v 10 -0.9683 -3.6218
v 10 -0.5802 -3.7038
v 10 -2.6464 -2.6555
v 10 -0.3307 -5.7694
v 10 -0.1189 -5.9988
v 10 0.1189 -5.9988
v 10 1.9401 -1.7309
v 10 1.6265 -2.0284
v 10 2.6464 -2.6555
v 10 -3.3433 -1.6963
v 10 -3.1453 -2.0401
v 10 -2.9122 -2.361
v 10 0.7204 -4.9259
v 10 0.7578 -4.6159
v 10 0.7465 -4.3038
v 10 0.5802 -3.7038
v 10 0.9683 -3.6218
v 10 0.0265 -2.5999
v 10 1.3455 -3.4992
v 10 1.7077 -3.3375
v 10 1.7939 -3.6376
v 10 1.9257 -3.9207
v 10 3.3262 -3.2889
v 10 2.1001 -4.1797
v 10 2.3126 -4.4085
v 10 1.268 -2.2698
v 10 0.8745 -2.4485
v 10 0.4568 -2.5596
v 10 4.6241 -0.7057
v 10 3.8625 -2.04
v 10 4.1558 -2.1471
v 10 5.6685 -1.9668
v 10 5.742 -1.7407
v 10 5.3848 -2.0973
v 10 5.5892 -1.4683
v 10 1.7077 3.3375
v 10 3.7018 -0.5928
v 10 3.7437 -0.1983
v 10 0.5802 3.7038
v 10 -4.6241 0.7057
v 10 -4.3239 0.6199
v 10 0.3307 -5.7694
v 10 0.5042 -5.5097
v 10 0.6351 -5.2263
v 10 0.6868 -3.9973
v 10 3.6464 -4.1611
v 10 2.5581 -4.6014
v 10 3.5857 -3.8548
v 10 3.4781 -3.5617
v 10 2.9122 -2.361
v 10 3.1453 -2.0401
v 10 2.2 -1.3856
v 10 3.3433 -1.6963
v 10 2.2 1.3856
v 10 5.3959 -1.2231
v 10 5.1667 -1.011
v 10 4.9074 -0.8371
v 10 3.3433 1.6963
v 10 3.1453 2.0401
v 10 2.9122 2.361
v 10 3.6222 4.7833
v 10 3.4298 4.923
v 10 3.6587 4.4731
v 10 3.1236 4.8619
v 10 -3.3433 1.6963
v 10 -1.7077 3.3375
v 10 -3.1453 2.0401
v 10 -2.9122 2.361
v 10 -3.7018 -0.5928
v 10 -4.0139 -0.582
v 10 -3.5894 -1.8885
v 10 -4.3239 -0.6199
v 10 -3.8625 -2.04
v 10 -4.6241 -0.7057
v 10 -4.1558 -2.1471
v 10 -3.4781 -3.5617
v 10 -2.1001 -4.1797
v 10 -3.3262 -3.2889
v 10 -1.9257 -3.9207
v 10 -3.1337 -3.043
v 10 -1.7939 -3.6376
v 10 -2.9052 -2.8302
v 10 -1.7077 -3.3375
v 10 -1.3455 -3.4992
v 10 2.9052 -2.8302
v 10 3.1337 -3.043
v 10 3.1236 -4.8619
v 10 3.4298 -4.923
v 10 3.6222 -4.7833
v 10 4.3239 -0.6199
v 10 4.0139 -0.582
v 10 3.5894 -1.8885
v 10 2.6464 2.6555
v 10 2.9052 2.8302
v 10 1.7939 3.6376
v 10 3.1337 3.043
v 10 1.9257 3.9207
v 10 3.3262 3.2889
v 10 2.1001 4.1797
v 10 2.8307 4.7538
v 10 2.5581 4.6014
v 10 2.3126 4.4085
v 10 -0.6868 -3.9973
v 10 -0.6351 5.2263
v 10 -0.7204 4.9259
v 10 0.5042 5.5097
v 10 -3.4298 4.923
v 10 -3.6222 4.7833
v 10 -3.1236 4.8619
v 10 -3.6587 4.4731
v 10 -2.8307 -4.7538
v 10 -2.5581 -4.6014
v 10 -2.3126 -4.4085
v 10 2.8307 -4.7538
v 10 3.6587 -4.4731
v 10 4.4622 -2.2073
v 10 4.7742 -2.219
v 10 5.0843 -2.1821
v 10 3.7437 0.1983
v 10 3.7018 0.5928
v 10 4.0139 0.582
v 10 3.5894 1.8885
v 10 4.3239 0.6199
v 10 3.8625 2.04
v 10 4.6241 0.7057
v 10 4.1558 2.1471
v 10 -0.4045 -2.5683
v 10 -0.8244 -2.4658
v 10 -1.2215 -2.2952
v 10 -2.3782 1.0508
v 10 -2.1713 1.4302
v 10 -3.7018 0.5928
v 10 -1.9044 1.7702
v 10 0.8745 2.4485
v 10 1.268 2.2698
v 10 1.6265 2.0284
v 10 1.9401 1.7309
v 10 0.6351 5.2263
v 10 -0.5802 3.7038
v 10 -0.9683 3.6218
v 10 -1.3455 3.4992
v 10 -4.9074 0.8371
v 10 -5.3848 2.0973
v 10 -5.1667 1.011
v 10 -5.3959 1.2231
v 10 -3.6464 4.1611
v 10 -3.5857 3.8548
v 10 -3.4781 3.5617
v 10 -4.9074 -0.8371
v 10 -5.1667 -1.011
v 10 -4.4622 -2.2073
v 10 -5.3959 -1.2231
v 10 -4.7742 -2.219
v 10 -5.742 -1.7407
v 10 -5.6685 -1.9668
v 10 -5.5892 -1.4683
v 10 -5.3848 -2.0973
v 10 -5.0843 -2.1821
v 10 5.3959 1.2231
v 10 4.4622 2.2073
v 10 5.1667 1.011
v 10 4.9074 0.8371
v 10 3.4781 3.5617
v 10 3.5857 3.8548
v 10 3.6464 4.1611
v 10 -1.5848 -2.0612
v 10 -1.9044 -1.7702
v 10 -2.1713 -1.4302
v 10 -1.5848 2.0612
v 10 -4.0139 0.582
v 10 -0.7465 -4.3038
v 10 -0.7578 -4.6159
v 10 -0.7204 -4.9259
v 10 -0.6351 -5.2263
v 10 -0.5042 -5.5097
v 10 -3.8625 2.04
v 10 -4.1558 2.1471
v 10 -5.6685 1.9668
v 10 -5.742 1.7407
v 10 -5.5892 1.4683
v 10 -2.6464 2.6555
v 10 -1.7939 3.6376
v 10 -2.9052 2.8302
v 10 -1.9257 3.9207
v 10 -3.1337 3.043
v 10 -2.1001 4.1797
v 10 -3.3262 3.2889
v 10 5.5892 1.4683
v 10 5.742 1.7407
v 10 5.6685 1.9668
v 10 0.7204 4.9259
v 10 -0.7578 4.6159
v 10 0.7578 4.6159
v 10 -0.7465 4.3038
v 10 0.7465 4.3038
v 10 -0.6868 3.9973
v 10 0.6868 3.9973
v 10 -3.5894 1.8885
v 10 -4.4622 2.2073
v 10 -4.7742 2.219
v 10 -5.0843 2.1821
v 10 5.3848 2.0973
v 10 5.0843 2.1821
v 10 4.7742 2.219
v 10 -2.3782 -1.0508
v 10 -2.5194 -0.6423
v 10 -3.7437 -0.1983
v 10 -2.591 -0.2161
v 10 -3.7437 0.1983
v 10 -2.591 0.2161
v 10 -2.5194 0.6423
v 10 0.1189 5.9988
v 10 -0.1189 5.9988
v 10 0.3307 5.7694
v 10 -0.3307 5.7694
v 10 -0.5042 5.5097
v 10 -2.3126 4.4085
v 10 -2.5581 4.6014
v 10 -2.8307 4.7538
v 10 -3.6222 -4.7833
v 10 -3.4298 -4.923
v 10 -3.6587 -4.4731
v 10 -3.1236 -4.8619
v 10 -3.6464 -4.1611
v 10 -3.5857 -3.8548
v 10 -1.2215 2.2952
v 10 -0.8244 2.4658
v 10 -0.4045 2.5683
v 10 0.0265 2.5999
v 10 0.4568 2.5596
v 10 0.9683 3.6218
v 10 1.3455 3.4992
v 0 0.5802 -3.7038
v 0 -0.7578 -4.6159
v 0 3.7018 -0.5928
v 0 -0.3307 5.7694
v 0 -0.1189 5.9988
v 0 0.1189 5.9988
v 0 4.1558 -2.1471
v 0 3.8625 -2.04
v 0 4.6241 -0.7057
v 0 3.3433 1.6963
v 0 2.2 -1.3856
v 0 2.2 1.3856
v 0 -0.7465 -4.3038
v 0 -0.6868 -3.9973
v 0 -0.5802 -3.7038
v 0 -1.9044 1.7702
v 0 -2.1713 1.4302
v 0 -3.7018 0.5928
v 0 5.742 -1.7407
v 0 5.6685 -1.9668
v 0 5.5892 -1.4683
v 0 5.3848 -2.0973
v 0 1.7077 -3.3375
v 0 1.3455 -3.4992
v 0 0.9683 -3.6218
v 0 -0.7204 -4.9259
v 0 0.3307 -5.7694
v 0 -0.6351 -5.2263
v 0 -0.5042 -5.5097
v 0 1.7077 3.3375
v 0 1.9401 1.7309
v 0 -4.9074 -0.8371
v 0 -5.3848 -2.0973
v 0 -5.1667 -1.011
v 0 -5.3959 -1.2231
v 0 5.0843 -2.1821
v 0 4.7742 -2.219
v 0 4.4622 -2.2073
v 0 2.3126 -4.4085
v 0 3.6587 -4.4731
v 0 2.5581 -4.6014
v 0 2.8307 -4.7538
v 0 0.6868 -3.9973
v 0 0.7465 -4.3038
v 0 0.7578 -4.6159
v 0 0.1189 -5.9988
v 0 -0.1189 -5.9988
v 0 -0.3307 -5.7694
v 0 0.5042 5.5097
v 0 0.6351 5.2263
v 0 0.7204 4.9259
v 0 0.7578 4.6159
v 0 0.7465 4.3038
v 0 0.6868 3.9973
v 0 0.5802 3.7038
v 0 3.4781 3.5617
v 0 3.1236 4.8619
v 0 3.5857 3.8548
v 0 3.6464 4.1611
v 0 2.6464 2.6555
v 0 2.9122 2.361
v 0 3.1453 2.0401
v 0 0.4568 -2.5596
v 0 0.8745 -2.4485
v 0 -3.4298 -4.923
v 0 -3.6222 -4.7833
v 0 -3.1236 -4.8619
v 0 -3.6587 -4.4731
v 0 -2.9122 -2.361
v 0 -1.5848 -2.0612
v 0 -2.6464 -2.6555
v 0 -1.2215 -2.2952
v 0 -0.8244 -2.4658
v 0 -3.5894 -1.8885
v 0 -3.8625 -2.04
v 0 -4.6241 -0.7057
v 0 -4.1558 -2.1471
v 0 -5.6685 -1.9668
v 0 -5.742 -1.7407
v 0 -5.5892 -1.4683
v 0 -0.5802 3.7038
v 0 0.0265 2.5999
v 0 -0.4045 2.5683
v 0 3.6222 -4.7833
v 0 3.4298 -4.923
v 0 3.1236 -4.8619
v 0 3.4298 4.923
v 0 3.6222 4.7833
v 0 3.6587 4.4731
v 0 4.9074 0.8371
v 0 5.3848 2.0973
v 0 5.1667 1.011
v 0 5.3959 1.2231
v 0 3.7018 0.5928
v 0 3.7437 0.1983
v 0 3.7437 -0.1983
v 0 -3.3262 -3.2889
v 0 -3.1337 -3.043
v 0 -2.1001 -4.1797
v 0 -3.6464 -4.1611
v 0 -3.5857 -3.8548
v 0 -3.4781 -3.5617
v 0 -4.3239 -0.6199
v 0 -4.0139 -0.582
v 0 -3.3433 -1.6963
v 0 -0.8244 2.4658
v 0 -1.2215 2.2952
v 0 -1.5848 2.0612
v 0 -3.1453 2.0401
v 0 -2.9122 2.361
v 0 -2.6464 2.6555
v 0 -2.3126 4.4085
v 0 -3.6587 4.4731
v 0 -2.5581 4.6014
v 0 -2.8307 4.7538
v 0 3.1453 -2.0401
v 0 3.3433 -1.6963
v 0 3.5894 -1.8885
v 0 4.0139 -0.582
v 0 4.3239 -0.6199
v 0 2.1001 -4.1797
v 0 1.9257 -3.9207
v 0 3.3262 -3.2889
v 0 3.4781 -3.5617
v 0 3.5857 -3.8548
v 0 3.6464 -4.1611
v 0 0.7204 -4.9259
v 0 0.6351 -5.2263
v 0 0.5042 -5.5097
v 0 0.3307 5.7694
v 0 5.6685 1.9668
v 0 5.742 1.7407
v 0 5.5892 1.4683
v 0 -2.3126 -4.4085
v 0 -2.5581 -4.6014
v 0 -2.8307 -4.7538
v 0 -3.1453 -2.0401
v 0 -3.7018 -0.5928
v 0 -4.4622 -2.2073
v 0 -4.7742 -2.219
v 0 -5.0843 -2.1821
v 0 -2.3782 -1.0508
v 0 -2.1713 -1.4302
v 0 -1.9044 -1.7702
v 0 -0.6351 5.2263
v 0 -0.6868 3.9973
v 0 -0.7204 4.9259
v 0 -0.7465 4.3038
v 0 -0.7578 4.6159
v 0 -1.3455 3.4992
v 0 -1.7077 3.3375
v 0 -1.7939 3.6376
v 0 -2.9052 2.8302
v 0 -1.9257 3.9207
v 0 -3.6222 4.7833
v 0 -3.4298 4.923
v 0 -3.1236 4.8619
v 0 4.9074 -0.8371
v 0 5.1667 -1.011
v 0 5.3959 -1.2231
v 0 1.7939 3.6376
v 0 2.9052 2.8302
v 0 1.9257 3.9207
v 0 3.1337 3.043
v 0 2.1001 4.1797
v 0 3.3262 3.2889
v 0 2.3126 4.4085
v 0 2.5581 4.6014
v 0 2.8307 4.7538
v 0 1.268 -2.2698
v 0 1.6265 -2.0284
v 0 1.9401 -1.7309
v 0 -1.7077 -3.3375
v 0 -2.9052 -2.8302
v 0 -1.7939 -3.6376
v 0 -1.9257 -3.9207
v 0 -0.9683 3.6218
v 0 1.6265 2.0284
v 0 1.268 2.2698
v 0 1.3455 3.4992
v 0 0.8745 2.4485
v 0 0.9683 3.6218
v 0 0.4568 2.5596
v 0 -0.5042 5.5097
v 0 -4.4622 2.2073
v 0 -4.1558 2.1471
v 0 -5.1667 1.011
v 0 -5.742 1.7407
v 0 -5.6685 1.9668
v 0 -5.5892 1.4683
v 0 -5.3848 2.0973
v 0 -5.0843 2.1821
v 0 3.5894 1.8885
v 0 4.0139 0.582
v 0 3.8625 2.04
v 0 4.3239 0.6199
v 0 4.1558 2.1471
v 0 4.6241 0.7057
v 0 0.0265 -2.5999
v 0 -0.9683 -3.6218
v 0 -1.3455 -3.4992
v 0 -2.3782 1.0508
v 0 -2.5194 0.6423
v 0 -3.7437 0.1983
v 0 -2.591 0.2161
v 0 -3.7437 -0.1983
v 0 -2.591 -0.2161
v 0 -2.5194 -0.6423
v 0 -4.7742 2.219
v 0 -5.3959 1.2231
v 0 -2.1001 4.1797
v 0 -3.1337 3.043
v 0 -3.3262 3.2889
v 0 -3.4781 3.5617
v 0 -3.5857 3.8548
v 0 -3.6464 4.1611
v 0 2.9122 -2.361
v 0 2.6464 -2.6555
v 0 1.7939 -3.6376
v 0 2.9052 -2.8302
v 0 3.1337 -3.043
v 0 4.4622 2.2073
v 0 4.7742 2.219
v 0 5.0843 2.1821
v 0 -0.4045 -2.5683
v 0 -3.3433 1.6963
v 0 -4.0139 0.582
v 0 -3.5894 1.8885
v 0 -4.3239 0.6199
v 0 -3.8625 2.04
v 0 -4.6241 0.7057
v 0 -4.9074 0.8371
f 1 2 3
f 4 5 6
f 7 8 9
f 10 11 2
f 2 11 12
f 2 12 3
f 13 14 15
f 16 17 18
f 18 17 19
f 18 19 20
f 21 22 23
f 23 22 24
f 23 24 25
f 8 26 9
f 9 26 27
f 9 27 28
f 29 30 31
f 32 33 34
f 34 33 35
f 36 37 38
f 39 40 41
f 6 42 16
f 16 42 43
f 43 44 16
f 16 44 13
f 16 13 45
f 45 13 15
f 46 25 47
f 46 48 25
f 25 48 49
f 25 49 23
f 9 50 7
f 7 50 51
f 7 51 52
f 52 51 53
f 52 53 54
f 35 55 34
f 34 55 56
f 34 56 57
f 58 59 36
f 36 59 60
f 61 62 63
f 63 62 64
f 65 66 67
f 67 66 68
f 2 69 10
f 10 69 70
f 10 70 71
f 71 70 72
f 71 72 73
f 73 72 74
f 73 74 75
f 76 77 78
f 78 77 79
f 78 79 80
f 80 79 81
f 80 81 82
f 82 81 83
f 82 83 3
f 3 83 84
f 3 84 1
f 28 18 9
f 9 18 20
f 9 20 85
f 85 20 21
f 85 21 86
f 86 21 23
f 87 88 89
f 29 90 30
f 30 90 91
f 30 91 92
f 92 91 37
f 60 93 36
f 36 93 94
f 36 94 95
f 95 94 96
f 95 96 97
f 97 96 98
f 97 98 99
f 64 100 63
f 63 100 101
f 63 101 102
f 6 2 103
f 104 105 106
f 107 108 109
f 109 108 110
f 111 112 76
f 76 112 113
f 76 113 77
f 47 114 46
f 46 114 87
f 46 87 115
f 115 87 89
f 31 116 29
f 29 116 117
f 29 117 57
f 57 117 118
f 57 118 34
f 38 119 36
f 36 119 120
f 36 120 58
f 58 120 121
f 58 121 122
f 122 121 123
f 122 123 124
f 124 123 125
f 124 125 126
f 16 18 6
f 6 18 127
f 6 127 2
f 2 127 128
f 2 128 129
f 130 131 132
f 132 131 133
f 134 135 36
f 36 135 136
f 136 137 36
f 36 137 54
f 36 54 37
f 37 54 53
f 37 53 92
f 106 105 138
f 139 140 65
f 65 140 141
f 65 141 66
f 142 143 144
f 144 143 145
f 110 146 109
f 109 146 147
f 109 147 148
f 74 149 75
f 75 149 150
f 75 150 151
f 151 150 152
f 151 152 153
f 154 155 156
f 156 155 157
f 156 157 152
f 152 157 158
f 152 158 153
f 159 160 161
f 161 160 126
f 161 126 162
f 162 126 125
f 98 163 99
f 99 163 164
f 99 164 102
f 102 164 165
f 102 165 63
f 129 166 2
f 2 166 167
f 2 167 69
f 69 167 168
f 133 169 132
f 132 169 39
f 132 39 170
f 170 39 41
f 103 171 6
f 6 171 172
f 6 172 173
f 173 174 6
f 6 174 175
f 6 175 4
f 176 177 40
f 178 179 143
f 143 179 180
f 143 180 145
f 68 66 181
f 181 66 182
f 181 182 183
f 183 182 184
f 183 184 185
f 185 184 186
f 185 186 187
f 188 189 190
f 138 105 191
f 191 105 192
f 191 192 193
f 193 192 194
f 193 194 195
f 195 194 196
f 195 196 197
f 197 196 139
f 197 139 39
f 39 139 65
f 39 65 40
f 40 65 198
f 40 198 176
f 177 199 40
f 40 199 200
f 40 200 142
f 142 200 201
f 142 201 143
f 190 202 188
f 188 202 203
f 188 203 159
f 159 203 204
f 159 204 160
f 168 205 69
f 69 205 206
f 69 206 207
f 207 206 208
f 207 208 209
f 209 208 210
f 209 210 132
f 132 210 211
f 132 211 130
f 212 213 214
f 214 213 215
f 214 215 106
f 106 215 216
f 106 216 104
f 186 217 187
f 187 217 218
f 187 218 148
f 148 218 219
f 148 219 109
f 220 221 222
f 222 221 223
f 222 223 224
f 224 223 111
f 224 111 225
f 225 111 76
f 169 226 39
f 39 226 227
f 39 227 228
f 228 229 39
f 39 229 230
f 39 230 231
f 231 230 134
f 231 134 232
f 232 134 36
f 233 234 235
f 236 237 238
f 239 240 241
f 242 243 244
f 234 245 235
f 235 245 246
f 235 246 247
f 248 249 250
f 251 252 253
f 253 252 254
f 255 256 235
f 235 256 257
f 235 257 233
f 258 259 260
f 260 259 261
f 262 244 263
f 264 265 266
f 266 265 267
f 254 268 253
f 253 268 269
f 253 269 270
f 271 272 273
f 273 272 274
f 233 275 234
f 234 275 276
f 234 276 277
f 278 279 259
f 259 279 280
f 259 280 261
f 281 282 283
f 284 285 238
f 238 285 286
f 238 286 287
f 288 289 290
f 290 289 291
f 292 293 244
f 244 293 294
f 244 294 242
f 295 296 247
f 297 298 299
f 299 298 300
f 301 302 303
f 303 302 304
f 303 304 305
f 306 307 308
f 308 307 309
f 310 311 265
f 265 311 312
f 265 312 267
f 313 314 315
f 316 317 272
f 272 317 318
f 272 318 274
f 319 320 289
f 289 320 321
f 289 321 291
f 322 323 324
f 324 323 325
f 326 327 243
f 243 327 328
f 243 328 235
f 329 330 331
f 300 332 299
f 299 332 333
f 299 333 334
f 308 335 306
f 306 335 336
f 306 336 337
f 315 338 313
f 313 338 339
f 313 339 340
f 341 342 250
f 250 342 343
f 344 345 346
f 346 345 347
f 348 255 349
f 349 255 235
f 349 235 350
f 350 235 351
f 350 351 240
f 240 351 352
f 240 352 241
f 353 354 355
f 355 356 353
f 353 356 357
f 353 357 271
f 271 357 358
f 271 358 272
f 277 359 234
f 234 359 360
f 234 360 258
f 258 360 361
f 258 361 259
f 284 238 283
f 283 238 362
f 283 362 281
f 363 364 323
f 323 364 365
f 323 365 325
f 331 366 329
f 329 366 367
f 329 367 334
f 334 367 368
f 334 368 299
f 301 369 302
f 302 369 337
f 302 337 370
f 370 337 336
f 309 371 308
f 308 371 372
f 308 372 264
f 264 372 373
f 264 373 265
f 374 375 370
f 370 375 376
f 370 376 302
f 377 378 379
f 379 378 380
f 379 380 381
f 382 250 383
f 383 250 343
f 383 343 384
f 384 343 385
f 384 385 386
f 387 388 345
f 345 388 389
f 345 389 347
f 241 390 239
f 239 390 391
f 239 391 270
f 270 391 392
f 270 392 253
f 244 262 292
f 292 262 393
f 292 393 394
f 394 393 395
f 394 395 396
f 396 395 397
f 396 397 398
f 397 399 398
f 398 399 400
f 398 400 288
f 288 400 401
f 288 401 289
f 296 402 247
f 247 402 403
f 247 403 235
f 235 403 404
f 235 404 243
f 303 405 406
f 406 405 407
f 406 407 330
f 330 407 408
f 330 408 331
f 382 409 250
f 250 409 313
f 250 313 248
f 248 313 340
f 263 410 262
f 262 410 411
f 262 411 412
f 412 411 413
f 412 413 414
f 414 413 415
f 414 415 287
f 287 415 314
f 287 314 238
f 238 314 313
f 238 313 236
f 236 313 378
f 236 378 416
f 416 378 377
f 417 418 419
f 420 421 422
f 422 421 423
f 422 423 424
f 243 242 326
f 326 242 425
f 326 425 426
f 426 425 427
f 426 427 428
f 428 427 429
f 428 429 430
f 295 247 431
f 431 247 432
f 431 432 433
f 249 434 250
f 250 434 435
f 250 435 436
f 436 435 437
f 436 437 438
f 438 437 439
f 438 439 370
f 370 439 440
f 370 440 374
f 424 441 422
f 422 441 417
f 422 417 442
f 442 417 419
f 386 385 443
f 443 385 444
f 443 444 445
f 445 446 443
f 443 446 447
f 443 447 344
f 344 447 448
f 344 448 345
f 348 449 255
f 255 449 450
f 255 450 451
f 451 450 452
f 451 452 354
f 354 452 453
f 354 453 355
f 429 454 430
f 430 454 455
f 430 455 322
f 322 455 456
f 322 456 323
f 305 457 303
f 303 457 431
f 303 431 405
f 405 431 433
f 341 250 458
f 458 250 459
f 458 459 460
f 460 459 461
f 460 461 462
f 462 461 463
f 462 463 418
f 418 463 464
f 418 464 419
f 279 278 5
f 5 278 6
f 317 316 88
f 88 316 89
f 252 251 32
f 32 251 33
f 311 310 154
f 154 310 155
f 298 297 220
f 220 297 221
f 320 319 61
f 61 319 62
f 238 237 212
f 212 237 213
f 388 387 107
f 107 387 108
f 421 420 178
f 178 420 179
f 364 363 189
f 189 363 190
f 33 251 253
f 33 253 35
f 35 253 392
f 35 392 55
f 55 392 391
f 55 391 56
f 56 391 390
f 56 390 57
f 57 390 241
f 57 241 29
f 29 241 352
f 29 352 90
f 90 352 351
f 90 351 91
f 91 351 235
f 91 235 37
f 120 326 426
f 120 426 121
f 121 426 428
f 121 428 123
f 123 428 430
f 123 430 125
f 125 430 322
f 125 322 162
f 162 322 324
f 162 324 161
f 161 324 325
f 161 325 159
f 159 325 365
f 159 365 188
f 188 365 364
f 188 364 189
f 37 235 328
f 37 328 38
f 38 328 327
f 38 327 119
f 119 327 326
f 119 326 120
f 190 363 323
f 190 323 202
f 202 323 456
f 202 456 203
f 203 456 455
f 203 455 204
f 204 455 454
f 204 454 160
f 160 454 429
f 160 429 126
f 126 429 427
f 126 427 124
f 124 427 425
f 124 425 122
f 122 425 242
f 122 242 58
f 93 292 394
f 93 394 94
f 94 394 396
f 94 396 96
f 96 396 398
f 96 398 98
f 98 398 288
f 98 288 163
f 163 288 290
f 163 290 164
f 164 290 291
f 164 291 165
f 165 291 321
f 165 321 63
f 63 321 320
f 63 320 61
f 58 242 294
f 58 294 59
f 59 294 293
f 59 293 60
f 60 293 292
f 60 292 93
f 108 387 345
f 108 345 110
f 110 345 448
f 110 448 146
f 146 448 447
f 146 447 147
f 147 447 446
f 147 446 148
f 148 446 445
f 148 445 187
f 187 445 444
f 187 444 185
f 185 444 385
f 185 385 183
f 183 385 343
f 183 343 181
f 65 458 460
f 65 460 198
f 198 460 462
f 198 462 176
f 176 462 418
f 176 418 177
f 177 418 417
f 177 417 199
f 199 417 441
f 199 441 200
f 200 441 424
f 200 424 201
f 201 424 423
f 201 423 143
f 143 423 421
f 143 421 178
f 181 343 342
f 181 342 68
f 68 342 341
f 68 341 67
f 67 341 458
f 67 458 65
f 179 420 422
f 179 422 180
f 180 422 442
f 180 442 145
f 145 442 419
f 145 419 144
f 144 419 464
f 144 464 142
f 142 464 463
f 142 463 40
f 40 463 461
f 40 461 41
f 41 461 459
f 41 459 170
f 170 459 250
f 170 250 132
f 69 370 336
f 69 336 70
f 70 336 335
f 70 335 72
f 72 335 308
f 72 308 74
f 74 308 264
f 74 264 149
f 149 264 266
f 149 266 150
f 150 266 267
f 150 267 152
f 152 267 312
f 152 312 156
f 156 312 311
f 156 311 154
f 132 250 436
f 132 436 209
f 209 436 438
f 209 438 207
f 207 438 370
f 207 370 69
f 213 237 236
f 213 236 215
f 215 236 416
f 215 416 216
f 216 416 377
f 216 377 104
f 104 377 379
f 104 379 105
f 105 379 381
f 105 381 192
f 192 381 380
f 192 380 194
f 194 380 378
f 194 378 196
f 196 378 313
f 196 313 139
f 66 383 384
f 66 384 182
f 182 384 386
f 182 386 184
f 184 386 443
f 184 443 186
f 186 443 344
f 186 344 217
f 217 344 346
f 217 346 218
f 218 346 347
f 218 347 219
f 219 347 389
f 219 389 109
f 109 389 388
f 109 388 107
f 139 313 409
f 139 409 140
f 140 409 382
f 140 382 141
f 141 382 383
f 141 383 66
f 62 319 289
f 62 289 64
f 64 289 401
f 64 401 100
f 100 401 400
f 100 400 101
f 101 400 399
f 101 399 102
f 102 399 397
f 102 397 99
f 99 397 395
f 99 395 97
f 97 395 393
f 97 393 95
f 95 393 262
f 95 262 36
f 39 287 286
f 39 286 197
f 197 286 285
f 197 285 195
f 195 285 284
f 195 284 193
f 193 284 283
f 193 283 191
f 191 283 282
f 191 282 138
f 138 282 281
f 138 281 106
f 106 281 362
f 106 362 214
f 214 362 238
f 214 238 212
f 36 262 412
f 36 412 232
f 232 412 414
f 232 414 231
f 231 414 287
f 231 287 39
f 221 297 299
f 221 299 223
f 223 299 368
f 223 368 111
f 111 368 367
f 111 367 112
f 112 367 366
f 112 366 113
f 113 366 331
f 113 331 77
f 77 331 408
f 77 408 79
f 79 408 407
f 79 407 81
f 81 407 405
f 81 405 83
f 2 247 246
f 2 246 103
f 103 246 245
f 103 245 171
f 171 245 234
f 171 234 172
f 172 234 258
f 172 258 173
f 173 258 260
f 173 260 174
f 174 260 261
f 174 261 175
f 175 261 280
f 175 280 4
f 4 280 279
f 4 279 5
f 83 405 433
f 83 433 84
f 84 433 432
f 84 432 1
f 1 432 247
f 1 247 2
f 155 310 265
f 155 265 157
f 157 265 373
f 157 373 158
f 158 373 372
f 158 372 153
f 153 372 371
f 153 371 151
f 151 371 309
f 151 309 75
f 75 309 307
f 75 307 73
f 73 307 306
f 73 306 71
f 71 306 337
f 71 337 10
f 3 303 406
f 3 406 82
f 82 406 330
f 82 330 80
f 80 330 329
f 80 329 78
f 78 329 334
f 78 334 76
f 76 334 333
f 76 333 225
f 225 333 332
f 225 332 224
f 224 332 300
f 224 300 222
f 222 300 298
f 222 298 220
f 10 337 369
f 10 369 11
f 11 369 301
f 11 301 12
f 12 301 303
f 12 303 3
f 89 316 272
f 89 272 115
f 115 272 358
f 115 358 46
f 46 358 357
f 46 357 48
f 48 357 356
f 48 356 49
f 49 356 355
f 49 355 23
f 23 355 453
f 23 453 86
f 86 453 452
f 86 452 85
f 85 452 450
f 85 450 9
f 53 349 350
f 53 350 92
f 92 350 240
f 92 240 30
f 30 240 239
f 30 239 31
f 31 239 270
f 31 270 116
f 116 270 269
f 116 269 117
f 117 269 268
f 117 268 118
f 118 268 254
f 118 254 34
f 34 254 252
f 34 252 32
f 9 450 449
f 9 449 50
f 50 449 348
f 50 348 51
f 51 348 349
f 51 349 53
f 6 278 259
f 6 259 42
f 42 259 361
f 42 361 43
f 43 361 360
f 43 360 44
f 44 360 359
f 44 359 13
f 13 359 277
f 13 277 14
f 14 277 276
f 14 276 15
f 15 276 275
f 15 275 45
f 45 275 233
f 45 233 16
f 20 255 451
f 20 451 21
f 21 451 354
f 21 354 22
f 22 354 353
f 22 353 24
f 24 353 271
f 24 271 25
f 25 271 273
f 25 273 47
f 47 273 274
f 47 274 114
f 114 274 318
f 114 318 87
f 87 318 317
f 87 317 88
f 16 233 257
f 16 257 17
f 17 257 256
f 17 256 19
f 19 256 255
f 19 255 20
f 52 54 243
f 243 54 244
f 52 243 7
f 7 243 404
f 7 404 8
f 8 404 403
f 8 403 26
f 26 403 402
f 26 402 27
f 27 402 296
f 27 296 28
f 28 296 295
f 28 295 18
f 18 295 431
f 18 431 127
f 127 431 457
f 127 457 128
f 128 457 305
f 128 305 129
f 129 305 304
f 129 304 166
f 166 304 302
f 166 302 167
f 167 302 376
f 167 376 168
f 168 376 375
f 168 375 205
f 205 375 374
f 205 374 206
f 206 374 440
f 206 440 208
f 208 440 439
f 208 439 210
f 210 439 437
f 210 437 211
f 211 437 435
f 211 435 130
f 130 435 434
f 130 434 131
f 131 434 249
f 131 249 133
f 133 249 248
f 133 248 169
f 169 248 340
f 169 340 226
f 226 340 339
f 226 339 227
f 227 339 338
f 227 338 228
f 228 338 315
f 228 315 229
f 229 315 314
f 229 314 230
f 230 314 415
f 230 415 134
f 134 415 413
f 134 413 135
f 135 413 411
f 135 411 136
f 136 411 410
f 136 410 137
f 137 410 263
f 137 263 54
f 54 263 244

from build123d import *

# Parameters (mm, degrees)
BASPROSKE_W         = 10
BASPROSKE_H         = 6
TOOTHCUT_DEPTH      = 14.114877049
TEETHCUTS_COUNT     = 10
TEETHCUTS_ANGLE     = 324
BORSKE_R            = 2.5
BORE_DEPTH          = 50.0000508
SKETCH1_R           = 2.5
BOSS_EXTRUDE1_DEPTH = 10
CUT_EXTRUDE2_DEPTH  = 10
CUT_EXTRUDE4_DEPTH  = 12.8


with BuildPart() as part:
    # BasProSke → Base-Revolve (revolve)
    with BuildSketch(Plane(origin=(0, 0, 0), x_dir=(1, 0, 0), z_dir=(0, 1, 0)), mode=Mode.PRIVATE) as base_revolve_sk:
        with Locations((5, 3)):
            Rectangle(BASPROSKE_W, BASPROSKE_H)
    revolve(base_revolve_sk.sketch.rotate(Axis((-10, 0, 0), (1, 0, 0)), 180), axis=Axis((-10, 0, 0), (1, 0, 0)))

    # TooCutSke → ToothCut (cut, through all)
    with BuildSketch(Plane(origin=(0, 0, 0), x_dir=(0, 0, -1), z_dir=(1, 0, 0))):
        with BuildLine():
            ThreePointArc((0.59278292, 3.701838653), (0, 3.749), (-0.59278292, 3.701838653))
            ThreePointArc((-0.59278292, 3.701838653), (-0.846593509, 4.924114224), (-1.775771316, 5.757784417))
            ThreePointArc((-1.775771316, 5.757784417), (0, 6.0254), (1.775771316, 5.757784417))
            ThreePointArc((1.775771316, 5.757784417), (0.846593509, 4.924114224), (0.59278292, 3.701838653))
        make_face()
    toothcut = extrude(amount=TOOTHCUT_DEPTH, mode=Mode.SUBTRACT)

    # TeethCuts: ToothCut ×10 about axis
    teethcuts_axis = Axis((-10, 0, 0), (1, 0, 0))
    for i in range(1, TEETHCUTS_COUNT):
        add(toothcut.rotate(teethcuts_axis, i * TEETHCUTS_ANGLE / (TEETHCUTS_COUNT - 1)), mode=Mode.SUBTRACT)

    # BorSke → Bore (cut, symmetric)
    with BuildSketch(Plane(origin=(0, 0, 0), x_dir=(0, 0, -1), z_dir=(1, 0, 0))):
        with Locations(Location((0, 0, 0), (0, 0, 180))):
            Circle(BORSKE_R)
    extrude(amount=BORE_DEPTH, both=True, mode=Mode.SUBTRACT)

    # Sketch1 → Boss-Extrude1 (add)
    with BuildSketch(Plane(origin=(10, 0, 0), x_dir=(0, 0, -1), z_dir=(1, 0, 0))):
        Circle(SKETCH1_R)
    extrude(amount=-BOSS_EXTRUDE1_DEPTH)

    # Sketch2 → Cut-Extrude2 (cut)
    with BuildSketch(Plane.ZY):
        with BuildLine():
            Line((1.187434209, 2.2), (-1.187434209, 2.2))
            ThreePointArc((-1.187434209, 2.2), (-1.280900948, -2.146926352), (2.5, 0))
            ThreePointArc((2.5, 0), (2.146926352, 1.280900948), (1.187434209, 2.2))
        make_face()
    extrude(amount=-CUT_EXTRUDE2_DEPTH, mode=Mode.SUBTRACT)

    # Sketch3 → Cut-Extrude4 (cut)
    with BuildSketch(Plane.ZY):
        with BuildLine():
            ThreePointArc((-1.385640646, 2.2), (0, -2.6), (1.385640646, 2.2))
            Line((1.385640646, 2.2), (-1.385640646, 2.2))
        make_face()
    extrude(amount=-CUT_EXTRUDE4_DEPTH, mode=Mode.SUBTRACT)


solid = part.part
